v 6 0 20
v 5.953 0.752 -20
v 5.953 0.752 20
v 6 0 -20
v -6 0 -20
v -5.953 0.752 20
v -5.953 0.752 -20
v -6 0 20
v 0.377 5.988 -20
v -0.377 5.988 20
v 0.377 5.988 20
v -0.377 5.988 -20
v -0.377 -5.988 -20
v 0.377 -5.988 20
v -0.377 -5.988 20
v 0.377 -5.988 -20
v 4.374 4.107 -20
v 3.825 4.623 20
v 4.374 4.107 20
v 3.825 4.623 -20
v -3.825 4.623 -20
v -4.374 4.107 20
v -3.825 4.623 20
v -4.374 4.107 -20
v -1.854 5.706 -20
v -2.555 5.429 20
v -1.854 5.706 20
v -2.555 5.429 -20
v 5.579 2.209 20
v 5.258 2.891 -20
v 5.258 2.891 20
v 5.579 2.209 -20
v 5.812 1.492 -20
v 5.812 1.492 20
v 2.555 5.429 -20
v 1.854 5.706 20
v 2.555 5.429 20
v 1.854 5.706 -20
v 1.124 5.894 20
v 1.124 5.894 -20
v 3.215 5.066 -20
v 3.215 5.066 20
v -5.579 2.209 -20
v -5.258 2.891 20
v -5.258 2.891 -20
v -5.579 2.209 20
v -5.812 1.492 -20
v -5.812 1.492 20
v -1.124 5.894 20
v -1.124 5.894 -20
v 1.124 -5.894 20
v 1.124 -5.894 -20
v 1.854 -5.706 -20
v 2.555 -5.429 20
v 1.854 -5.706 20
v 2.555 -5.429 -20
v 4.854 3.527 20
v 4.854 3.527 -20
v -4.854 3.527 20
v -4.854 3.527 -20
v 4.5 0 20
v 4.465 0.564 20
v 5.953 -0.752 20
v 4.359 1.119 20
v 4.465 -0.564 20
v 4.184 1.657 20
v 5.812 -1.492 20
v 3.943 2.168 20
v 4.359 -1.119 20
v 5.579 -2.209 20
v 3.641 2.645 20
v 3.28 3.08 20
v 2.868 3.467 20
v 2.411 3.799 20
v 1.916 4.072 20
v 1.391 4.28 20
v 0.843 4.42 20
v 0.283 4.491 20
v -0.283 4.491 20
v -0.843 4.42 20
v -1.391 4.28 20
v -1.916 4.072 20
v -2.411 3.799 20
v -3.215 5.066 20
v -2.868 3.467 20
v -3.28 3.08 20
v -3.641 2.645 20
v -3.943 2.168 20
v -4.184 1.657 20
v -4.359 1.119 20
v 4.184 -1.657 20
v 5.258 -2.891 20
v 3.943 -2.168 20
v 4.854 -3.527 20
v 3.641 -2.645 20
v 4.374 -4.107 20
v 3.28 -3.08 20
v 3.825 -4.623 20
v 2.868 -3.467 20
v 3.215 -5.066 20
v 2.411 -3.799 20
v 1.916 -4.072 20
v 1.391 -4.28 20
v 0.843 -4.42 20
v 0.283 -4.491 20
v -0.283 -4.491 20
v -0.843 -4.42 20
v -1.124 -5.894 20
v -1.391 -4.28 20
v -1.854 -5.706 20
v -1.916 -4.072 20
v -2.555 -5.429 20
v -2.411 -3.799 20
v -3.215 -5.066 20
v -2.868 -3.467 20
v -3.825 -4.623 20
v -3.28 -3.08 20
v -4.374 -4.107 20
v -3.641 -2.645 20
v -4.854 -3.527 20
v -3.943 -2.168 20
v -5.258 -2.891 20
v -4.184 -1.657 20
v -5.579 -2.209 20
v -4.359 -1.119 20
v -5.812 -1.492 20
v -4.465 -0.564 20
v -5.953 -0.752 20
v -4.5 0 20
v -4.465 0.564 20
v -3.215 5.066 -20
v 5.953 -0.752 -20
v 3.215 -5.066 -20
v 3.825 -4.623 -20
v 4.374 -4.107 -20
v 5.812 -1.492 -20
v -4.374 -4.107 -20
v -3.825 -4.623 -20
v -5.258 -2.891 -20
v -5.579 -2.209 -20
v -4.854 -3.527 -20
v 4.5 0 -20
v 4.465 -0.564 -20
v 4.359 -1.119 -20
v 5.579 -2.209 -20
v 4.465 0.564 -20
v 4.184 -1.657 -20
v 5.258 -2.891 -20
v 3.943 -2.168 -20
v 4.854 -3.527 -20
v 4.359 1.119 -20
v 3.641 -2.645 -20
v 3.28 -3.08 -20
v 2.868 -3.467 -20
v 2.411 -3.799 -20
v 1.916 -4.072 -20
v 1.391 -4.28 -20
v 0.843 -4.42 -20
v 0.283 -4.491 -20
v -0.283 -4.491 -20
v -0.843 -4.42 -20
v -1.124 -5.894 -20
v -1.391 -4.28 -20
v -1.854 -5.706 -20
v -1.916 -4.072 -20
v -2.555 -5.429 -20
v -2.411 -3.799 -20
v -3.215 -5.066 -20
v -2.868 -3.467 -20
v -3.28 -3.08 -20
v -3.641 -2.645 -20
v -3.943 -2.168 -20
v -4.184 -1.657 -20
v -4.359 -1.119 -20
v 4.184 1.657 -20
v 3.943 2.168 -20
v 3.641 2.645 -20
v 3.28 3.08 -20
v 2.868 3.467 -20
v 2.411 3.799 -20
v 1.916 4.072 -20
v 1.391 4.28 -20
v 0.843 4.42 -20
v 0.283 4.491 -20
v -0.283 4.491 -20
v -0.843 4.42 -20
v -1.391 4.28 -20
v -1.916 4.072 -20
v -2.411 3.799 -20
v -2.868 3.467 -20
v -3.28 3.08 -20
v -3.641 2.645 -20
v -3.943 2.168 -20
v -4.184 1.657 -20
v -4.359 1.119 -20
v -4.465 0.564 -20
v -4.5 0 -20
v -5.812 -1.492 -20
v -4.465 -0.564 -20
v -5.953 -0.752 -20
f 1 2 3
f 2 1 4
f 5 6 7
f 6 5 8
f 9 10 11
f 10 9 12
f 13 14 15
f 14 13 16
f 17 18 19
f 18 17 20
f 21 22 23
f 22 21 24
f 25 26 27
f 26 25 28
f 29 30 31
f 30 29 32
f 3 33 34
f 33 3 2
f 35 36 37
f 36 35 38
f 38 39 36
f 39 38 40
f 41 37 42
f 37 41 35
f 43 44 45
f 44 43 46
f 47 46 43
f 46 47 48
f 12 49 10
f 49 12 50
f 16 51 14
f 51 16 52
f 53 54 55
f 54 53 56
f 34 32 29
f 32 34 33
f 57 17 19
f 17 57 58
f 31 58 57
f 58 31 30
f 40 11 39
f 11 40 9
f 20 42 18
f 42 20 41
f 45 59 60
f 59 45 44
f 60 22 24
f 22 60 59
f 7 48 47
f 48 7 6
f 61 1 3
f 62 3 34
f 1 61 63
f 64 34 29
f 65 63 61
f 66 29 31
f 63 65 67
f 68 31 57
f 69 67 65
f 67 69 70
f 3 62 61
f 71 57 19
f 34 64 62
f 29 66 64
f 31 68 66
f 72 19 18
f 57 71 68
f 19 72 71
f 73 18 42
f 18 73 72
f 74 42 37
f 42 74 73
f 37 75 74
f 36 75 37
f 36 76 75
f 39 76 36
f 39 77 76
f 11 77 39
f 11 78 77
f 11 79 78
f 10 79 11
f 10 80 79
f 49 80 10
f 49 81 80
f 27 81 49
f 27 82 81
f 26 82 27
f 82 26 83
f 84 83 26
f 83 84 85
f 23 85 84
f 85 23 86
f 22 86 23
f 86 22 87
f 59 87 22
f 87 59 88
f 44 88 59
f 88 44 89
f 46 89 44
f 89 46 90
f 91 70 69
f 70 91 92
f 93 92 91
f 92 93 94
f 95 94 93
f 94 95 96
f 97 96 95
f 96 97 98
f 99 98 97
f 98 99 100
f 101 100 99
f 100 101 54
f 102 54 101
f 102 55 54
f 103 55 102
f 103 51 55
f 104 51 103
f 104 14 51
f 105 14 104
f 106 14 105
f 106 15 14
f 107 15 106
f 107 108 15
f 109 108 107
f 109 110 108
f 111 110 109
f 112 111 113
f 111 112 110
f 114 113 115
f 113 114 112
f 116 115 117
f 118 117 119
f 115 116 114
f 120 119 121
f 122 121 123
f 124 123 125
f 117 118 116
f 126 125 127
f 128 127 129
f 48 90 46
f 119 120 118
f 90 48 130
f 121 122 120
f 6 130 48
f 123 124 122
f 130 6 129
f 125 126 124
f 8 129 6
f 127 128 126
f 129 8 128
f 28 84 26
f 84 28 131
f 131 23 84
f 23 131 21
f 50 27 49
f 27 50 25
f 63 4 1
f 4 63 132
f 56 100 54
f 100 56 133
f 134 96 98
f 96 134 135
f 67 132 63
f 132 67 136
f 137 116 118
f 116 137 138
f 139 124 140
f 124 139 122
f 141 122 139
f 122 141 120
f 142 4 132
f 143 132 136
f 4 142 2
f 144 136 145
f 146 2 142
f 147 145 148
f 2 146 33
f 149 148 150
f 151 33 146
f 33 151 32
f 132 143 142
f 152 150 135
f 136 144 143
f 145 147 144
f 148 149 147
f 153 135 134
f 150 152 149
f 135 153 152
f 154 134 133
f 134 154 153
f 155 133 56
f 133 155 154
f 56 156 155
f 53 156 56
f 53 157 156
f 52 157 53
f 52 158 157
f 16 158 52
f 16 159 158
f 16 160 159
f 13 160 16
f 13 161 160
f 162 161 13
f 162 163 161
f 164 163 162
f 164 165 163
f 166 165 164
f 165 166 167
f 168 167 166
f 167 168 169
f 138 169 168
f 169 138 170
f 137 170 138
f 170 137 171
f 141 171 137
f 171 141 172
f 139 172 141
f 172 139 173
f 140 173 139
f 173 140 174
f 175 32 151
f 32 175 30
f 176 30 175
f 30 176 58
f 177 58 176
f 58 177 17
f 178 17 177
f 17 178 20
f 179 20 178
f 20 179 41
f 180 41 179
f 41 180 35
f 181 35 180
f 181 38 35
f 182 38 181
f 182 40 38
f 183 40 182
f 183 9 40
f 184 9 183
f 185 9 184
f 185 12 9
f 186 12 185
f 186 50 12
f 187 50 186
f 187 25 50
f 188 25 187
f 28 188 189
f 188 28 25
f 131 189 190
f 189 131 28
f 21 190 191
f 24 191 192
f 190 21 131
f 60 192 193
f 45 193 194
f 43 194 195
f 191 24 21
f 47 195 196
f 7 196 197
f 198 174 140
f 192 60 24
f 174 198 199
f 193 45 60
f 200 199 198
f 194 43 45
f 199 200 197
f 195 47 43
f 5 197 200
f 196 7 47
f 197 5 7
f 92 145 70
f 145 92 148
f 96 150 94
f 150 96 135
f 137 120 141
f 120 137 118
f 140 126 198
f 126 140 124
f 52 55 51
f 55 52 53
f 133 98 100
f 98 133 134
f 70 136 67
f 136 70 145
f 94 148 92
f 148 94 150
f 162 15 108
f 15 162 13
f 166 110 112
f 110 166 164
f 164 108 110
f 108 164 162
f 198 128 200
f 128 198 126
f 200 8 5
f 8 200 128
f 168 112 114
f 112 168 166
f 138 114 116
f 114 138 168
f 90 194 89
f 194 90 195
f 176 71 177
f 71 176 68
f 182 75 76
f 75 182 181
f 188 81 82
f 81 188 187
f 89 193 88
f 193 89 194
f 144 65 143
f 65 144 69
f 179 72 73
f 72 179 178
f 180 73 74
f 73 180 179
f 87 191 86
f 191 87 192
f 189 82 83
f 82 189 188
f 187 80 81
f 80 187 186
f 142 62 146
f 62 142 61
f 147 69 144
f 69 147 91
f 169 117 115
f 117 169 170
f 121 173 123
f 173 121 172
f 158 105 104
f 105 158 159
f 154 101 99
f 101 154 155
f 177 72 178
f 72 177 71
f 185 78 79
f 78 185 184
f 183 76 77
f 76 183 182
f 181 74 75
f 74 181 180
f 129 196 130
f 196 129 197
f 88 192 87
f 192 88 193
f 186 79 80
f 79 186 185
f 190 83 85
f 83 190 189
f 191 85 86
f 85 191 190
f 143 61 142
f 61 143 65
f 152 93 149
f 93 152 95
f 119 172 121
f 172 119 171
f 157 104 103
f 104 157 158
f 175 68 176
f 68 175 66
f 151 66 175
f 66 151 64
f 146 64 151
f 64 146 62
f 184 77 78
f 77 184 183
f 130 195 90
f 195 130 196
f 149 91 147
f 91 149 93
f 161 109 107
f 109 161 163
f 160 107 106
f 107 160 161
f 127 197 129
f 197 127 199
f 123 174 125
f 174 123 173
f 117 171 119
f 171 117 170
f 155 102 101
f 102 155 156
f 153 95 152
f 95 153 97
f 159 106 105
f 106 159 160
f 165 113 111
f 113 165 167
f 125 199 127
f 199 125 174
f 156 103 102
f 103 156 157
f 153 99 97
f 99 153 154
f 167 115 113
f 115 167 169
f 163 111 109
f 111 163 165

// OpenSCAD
$fn = 50;


difference() {
	union() {
		translate(v = [0, 0, -20.0000000000]) {
			cylinder(h = 40, r = 6.0000000000);
		}
	}
	union() {
		translate(v = [0, 0, -100.0000000000]) {
			cylinder(h = 200, r = 4.5000000000);
		}
	}
}
